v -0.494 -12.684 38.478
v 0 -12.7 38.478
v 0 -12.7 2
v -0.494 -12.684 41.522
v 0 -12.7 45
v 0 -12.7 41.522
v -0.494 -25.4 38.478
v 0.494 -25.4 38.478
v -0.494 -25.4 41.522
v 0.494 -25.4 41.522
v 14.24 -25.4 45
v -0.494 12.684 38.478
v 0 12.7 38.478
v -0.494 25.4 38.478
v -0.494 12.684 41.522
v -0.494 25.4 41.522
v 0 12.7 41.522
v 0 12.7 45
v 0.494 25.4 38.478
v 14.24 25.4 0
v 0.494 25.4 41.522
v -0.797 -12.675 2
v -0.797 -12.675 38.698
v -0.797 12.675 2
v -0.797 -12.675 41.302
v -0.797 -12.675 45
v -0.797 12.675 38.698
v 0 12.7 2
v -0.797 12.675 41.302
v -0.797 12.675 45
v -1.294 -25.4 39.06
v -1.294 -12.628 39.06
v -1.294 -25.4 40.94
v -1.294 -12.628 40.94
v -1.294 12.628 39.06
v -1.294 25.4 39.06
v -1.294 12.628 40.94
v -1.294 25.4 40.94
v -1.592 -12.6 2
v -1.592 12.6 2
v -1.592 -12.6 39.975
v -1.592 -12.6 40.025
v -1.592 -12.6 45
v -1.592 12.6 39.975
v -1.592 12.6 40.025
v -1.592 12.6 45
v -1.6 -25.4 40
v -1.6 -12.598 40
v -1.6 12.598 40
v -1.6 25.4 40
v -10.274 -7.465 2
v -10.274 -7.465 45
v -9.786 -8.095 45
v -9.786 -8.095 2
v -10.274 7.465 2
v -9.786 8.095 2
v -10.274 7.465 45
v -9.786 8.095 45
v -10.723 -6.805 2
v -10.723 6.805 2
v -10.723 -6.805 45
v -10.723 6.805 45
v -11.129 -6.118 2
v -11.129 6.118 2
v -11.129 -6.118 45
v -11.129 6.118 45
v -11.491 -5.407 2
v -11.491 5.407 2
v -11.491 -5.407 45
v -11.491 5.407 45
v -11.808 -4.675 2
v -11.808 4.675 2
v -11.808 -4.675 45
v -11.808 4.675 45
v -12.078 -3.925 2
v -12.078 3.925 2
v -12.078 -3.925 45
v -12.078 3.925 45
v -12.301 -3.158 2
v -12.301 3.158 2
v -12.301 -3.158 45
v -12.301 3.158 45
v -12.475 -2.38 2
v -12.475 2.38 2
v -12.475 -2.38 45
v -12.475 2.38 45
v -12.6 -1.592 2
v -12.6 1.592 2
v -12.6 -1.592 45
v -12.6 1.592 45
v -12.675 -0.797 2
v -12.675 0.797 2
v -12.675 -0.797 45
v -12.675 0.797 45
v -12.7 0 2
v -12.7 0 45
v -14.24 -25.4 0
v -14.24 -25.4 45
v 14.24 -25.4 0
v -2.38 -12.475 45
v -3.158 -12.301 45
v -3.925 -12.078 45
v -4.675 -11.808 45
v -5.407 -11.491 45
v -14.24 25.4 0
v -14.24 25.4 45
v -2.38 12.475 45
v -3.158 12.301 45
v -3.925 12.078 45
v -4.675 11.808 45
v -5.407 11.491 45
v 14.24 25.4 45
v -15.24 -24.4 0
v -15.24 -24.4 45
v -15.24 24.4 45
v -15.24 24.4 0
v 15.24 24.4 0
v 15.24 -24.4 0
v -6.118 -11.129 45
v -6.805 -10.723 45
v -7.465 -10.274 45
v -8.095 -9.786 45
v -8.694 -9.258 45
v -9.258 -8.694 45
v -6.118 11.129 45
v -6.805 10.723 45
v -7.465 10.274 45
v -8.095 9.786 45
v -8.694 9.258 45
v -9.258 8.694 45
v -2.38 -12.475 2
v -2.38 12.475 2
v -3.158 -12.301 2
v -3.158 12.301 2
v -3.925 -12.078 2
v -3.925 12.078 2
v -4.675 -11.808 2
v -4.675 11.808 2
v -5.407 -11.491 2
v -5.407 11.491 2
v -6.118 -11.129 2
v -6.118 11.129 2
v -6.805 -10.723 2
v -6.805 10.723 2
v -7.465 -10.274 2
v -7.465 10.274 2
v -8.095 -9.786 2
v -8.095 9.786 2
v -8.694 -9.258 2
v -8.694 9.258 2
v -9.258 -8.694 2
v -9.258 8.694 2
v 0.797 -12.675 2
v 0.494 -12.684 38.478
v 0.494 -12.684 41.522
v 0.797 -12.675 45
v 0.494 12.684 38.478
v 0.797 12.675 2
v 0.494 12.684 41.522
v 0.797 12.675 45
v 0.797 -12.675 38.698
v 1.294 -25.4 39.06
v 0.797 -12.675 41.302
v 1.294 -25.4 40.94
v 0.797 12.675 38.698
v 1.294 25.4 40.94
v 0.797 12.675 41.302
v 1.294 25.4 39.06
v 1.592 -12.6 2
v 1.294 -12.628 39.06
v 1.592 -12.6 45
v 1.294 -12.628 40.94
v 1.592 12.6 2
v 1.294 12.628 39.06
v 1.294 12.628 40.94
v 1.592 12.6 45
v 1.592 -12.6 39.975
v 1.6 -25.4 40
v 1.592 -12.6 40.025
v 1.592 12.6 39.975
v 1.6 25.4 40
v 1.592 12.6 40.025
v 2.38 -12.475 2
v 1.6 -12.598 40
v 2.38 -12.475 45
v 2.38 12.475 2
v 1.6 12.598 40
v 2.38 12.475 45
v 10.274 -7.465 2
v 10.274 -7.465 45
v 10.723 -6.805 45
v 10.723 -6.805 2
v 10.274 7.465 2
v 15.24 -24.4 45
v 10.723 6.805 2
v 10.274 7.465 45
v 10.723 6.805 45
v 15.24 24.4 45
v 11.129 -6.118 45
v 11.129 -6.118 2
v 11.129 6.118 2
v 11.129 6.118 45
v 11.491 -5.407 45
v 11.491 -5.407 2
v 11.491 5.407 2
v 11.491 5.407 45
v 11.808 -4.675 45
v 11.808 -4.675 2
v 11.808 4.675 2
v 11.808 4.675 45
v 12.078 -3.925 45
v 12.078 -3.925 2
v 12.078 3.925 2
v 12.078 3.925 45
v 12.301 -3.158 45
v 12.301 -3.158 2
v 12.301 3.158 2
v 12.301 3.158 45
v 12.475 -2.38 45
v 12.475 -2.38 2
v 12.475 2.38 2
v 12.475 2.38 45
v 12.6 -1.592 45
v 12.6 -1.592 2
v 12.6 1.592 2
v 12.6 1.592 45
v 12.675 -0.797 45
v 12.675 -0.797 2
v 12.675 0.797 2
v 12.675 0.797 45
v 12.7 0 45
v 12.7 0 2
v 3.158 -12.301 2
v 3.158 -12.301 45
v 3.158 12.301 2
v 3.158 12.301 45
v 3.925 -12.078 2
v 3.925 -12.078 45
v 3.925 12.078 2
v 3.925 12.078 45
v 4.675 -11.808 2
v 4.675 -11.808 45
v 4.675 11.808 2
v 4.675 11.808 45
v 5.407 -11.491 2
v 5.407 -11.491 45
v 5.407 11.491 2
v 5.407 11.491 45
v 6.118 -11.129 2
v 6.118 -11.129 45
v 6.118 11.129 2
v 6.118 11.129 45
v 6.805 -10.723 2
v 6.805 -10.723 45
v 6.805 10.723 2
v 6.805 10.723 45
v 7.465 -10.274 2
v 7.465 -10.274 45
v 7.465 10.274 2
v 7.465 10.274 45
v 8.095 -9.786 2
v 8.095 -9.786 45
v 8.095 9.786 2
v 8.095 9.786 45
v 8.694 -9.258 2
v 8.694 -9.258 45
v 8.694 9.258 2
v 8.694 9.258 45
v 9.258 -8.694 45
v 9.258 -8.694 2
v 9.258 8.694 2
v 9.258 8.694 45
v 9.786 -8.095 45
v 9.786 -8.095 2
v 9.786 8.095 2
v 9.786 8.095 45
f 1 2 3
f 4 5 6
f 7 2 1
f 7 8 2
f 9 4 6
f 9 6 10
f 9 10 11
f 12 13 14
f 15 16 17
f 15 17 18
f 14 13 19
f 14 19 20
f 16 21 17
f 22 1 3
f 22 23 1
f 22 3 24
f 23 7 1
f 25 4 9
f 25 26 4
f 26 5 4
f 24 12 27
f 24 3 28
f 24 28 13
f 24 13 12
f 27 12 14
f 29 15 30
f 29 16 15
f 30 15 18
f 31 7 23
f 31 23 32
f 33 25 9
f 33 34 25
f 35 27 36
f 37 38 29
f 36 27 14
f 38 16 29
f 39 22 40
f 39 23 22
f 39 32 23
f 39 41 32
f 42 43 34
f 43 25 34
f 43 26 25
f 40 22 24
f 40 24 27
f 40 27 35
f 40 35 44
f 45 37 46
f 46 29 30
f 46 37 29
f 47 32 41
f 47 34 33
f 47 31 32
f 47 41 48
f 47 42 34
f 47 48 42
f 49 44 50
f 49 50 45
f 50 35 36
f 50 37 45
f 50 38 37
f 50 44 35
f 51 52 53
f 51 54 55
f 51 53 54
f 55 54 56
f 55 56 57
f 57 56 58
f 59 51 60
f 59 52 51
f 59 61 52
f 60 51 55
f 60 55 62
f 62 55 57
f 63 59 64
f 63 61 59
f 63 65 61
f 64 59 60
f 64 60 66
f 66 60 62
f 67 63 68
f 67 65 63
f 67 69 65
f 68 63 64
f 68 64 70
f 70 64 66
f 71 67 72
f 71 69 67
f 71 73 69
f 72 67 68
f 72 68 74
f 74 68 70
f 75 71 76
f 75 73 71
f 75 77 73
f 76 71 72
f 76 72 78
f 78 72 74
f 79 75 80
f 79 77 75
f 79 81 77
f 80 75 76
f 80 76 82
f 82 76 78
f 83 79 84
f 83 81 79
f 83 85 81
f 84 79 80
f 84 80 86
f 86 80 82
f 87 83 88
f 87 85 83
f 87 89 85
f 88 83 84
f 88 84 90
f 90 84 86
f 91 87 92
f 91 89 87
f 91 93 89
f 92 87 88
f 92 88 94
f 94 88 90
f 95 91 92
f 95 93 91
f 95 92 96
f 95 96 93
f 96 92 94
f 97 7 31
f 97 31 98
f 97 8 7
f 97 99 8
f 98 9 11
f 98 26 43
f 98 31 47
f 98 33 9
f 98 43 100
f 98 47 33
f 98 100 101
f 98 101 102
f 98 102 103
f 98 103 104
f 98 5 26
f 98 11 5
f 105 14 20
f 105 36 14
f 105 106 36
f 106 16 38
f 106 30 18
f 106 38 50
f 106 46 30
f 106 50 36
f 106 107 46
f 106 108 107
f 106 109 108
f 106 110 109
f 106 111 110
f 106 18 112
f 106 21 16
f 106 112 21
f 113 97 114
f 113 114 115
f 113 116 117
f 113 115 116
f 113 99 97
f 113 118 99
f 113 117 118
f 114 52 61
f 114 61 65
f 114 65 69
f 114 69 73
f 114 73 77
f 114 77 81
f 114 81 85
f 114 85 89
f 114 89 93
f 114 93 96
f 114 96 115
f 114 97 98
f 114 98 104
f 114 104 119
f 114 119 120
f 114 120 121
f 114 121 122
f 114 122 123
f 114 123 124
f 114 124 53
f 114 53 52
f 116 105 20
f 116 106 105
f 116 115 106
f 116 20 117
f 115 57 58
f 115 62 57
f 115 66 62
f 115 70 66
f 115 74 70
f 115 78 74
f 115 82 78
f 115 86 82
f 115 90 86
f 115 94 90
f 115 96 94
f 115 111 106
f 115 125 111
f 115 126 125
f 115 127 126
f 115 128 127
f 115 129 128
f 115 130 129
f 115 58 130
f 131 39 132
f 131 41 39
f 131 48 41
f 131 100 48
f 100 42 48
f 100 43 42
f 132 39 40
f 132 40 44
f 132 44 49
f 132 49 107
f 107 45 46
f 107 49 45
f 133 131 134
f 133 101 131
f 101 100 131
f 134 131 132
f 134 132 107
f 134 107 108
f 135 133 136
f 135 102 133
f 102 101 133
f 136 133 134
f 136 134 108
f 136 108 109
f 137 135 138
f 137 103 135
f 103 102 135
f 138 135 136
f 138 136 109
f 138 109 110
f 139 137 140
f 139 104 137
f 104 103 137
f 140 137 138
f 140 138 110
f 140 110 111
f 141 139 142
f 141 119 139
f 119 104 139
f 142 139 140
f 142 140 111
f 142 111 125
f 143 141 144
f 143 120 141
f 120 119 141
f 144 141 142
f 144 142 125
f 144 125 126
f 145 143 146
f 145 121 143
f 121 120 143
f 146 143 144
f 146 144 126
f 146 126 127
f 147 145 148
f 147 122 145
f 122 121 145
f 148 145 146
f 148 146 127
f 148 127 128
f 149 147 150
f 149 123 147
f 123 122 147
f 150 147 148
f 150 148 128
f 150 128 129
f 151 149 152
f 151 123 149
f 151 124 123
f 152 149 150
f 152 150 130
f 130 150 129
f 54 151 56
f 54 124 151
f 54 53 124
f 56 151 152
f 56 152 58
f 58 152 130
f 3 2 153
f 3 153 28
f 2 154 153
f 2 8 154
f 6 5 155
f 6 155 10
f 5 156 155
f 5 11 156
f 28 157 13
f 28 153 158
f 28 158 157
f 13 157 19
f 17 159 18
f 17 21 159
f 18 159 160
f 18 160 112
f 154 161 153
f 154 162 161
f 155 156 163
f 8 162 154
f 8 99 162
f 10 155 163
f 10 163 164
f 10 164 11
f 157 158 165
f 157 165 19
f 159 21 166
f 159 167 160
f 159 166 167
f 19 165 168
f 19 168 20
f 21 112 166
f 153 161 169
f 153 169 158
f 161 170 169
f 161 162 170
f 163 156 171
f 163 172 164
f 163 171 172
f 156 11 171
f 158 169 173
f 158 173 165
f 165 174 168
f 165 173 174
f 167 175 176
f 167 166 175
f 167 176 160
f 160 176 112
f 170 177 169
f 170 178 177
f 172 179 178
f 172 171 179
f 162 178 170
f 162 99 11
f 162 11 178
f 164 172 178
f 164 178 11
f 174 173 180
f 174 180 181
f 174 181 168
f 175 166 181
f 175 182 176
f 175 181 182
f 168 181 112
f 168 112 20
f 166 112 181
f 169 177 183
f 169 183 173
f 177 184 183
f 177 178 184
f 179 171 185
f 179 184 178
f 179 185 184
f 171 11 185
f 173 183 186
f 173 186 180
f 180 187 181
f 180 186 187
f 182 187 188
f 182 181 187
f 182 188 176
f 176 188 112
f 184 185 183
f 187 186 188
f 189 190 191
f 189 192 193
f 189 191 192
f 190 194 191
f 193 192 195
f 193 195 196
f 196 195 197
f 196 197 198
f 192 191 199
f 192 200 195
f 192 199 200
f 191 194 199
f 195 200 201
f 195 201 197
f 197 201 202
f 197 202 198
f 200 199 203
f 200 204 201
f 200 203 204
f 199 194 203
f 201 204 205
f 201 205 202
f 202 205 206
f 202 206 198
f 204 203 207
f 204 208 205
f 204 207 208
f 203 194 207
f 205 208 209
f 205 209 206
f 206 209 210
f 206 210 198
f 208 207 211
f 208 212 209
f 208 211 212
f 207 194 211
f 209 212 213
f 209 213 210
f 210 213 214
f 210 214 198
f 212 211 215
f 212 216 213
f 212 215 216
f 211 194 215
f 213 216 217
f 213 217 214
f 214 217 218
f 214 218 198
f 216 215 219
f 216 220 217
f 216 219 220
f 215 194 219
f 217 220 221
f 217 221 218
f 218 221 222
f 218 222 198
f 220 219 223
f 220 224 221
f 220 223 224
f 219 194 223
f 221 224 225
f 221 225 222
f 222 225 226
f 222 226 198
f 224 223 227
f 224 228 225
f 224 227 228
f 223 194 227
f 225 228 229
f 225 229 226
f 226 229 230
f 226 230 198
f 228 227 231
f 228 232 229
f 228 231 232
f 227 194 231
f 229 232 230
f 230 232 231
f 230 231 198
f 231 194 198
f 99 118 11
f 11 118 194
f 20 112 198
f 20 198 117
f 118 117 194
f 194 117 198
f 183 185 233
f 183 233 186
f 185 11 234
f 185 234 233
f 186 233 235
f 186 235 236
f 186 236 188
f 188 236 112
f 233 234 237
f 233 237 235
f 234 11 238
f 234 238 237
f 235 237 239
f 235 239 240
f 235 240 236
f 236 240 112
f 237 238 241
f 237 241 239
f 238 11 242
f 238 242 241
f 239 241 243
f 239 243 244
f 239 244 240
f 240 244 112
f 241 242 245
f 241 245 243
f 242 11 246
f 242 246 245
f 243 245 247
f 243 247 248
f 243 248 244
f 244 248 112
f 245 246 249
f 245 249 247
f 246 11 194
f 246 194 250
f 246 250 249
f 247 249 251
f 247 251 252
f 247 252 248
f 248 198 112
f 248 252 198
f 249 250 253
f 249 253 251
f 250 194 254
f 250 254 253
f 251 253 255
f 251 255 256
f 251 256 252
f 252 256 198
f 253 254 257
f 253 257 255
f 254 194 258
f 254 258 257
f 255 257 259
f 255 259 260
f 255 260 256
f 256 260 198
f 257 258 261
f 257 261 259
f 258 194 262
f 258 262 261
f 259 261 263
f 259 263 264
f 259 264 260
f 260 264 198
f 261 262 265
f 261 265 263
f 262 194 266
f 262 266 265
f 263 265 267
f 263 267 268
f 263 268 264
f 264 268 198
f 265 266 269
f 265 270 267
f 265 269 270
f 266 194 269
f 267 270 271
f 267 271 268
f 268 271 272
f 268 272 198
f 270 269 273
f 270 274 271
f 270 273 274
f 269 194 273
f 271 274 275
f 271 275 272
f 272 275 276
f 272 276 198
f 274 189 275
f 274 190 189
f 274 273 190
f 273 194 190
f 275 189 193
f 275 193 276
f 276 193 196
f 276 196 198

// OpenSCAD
// file: ../../888_2004.scad
//improving rendering speed.
draft = true;   // sets rendering quality to draft.
$fs = draft ? 5 : 0.5;
$fa = 10;


module 888_2004(height = 45, height_of_mini_cylinder = 2, draft = true)
{

bearing_screw_length = 30;

	difference ()
    {

        union ()    // top cap 
        {   
            translate([0,0,height_of_mini_cylinder])
                rotate([0,180,0])
                    cylinder(h = height_of_mini_cylinder, r1 = main_tube_outer_diameter/2, r2 = (main_tube_inner_diameter)/2, $fn = draft ? 100 : 200);

            cylinder (h = height, d = main_tube_inner_diameter, $fn = draft ? 100 : 200);
        }

        translate([0, 0, bearing_screw_length - 608_bearing_thickness])
            cylinder (h= height + global_clearance, d = 608_bearing_outer_diameter, $fn = draft ? 50 : 100);

        cylinder (h= 608_bearing_thickness, d = 608_bearing_outer_diameter, $fn = draft ? 50 : 100);

        cylinder (h= height, d = 608_bearing_outer_diameter - 3, $fn = draft ? 50 : 100);


        //screw
        translate([-main_tube_inner_diameter/2 - global_clearance/2, 0, 40])
            rotate([0,90,0])
                cylinder(h = main_tube_inner_diameter + global_clearance, r = M3_screw_diameter/2, $fn = draft ? 10 : 20);
    }
}



module 888_2004_drillhelper(height = 45, height_of_mini_cylinder = 2)
{
    difference (){

    translate([-(main_tube_outer_diameter + 2* thickness_between_tubes)/2,- main_tube_outer_diameter,0])
        cube ([main_tube_outer_diameter + 2*thickness_between_tubes,2*main_tube_outer_diameter,height]);
            
            //tube
                    translate([0,0,height_of_mini_cylinder])
                            cylinder(h=height + global_clearance,r = main_tube_outer_diameter/2,$fn = draft ? 100 : 200);

            //screw
                    translate([0,main_tube_outer_diameter + global_clearance/2,40])
                        rotate([90,0,0])
                            cylinder(h = 2 * main_tube_outer_diameter + global_clearance, r = M3_screw_diameter/2, $fn = draft ? 10 : 20);
            
            //bevelled edge
                    translate([(main_tube_outer_diameter + 2*thickness_between_tubes)/2, main_tube_outer_diameter - 1,- global_clearance/2])
                        rotate([0,0,45])
                            cube([main_tube_outer_diameter,main_tube_outer_diameter,height + global_clearance]);

            mirror ([1,0,0])
                    translate([(main_tube_outer_diameter + 2*thickness_between_tubes)/2, main_tube_outer_diameter - 1,- global_clearance/2])
                        rotate([0,0,45])
                            cube([main_tube_outer_diameter,main_tube_outer_diameter,height + global_clearance]);


            mirror([0,1,0])
                    translate([(main_tube_outer_diameter + 2*thickness_between_tubes)/2, main_tube_outer_diameter - 1,- global_clearance/2])
                        rotate([0,0,45])
                            cube([main_tube_outer_diameter,main_tube_outer_diameter,height + global_clearance]);

            
            mirror ([1,0,0])
                mirror([0,1,0])
                    translate([(main_tube_outer_diameter + 2*thickness_between_tubes)/2, main_tube_outer_diameter - 1,- global_clearance/2])
                        rotate([0,0,45])
                            cube([main_tube_outer_diameter,main_tube_outer_diameter,height + global_clearance]);
    //final difference
    }
//final module    
}


rotate([0,0,90])
    888_2004();

translate([2*main_tube_outer_diameter,0,0])
    888_2004_drillhelper();


include <../Parameters.scad>
// file: ../../../Parameters.scad
//Main tube diameter - hole [mm]
main_tube_outer_diameter = 25.4;
main_tube_inner_diameter = 23.5;

//Tube for undercarriage - hole [mm]
tube_for_undercarriage_outer_diameter = 10.6;
tube_for_undercarriage_inner_diameter = 6;
global_clearance = 0.5;


//umístění podvozkových trubek

second_undercarriage_hole = main_tube_outer_diameter*2 + main_tube_outer_diameter/5 + main_tube_outer_diameter/2 + 170 + 160;

// Parameters of cube couplings
coupling_wall_thickness = main_tube_outer_diameter/5;  //width of coupling walls 
thickness_between_tubes = main_tube_outer_diameter/10;    // minimum distance between tubes in couplings

coupling_wall_thickness_undercarriage = tube_for_undercarriage_outer_diameter/3;
thickness_between_tubes_undercarriage = tube_for_undercarriage_outer_diameter/10;

//Screw diameter and nut for M4 [mm]
M4_screw_diameter=4.5;
Nut_height_M4 = 3.2;
Nut_diameter_M4 = 7.86;


//Screw diameter and nut for M3 [mm]
M3_screw_diameter = 3.2;
Nut_height_M3 = 1.7;	
Nut_diameter_M3 = 6.6; 


//The tube for help
Help_main_tube_outer = 25;
Help_main_tube_inner = 23; 
Help_tube_for_undercarriage_outer = 10;
Help_tube_for_undercarriage_inner = 5;


//main hull parameters

hull_drop_length = 580;
hull_wall_thickness = 0.8;
hull_y_size = 120;
hull_z_size = 150;
hull_x_size = 580;
hull_corner_radius = 4;
hull_airfoil_thickness= 35;  // thickness of drop generating airfoil in percent of lenght.
hull_scale_x = 1;
hull_scale_y = 1.5;
hull_scale_z = 1.5;

main_pilon_position = 170+68;
cover_pilon_position = 180;
height_of_vertical_tube = 275; //278mm je změřená délka trubky. 

ribbon_width = 5; // šířka vyztužovacích lemů. 

// šířka otvoru v přední části kapoty pro držák motoru.
width_of_engine_holder = 63;

//Top Cover Division - dělení horního krytu pro tisk
top_cover_division = [0, 50, 150, 280, 410, hull_x_size]; // upraveny seznam tak, aby deleni začinalo od nuly, což umožňí úplně automatické rozdělení.

//Bottom Cover Division - dělení dolního krytu pro tisk
bottom_cover_division = [0,100,250,365, 470, hull_x_size];
// zkrácená část pro payload pro testovací tisk
//bottom_cover_division = [0,200,250,365, 470, hull_x_size];

//Base Divison - dělení podložky
base_division = [0,140,280,410, hull_x_size];

//Cover pilon division - na výšku (v ose Z)
cover_pilon_division = [0,170,height_of_vertical_tube + main_tube_outer_diameter + coupling_wall_thickness];

//pozice šroubů
	//horní kryt
top_screw_position = [0, (top_cover_division[0] + top_cover_division[1])/4, (top_cover_division[2] - top_cover_division[1])/2 + top_cover_division[1], (top_cover_division[3] - top_cover_division[2])/2 + top_cover_division[2],(top_cover_division[4] - top_cover_division[3])/2 + top_cover_division[3],(top_cover_division[5] - top_cover_division[4])/2 + top_cover_division[4] - 20];
	//spodní kryt
bottom_screw_position = [0,(bottom_cover_division[0] + bottom_cover_division[1])/15 + 5, bottom_cover_division[1]/1.1, + bottom_cover_division[3], bottom_cover_division[3] + bottom_cover_division[1]/2, bottom_cover_division[4] - 6*global_clearance, bottom_cover_division[4] + bottom_cover_division[1]/2.5];




//šířka zámků
lock_width = 10;

//délka zámků
lock_length = 3;


//accumulator
//základní rozměry akumulátoru
width_of_accumulator = 129.4;//45+1;
depth_of_accumulator = 40.61;
height_of_accumulator = 43.65;
//Zapuštění akumulátoru
sink_of_accumulator = 5; //main_tube_outer_diameter/5 - Nut_height_M3*1.5;

//tloušťka hrany spojky
accumulator_holder_width = 18; 
accumulator_holder_thickness = 10; 

//posunutí akumálátoru na podložce
move_of_accumulator = 165;   // pozice akumulátoru (ovlivňuje těžiště)


////////////////
// Senzory
///////////////////

//opticalFlow
    width_optical_flow_senzor = 45.5;
    depth_optical_flow_senzor = 6;
    height_optical_flow_senzor = 35;
    sink_of_optical_flow_senzor = depth_optical_flow_senzor - 5; 
    M3_optical_flow_senzor_Z = 30.4;
    M3_optical_flow_senzor_X = 24;
    M3_optical_flow_senzor_Z_alone = 9.1;
    M3_optical_flow_senzor_X_alone = 16.7;
// main file
include <../../../Parameters.scad>

use <../../888_2004.scad>

draft = false;

888_2004_drillhelper();
